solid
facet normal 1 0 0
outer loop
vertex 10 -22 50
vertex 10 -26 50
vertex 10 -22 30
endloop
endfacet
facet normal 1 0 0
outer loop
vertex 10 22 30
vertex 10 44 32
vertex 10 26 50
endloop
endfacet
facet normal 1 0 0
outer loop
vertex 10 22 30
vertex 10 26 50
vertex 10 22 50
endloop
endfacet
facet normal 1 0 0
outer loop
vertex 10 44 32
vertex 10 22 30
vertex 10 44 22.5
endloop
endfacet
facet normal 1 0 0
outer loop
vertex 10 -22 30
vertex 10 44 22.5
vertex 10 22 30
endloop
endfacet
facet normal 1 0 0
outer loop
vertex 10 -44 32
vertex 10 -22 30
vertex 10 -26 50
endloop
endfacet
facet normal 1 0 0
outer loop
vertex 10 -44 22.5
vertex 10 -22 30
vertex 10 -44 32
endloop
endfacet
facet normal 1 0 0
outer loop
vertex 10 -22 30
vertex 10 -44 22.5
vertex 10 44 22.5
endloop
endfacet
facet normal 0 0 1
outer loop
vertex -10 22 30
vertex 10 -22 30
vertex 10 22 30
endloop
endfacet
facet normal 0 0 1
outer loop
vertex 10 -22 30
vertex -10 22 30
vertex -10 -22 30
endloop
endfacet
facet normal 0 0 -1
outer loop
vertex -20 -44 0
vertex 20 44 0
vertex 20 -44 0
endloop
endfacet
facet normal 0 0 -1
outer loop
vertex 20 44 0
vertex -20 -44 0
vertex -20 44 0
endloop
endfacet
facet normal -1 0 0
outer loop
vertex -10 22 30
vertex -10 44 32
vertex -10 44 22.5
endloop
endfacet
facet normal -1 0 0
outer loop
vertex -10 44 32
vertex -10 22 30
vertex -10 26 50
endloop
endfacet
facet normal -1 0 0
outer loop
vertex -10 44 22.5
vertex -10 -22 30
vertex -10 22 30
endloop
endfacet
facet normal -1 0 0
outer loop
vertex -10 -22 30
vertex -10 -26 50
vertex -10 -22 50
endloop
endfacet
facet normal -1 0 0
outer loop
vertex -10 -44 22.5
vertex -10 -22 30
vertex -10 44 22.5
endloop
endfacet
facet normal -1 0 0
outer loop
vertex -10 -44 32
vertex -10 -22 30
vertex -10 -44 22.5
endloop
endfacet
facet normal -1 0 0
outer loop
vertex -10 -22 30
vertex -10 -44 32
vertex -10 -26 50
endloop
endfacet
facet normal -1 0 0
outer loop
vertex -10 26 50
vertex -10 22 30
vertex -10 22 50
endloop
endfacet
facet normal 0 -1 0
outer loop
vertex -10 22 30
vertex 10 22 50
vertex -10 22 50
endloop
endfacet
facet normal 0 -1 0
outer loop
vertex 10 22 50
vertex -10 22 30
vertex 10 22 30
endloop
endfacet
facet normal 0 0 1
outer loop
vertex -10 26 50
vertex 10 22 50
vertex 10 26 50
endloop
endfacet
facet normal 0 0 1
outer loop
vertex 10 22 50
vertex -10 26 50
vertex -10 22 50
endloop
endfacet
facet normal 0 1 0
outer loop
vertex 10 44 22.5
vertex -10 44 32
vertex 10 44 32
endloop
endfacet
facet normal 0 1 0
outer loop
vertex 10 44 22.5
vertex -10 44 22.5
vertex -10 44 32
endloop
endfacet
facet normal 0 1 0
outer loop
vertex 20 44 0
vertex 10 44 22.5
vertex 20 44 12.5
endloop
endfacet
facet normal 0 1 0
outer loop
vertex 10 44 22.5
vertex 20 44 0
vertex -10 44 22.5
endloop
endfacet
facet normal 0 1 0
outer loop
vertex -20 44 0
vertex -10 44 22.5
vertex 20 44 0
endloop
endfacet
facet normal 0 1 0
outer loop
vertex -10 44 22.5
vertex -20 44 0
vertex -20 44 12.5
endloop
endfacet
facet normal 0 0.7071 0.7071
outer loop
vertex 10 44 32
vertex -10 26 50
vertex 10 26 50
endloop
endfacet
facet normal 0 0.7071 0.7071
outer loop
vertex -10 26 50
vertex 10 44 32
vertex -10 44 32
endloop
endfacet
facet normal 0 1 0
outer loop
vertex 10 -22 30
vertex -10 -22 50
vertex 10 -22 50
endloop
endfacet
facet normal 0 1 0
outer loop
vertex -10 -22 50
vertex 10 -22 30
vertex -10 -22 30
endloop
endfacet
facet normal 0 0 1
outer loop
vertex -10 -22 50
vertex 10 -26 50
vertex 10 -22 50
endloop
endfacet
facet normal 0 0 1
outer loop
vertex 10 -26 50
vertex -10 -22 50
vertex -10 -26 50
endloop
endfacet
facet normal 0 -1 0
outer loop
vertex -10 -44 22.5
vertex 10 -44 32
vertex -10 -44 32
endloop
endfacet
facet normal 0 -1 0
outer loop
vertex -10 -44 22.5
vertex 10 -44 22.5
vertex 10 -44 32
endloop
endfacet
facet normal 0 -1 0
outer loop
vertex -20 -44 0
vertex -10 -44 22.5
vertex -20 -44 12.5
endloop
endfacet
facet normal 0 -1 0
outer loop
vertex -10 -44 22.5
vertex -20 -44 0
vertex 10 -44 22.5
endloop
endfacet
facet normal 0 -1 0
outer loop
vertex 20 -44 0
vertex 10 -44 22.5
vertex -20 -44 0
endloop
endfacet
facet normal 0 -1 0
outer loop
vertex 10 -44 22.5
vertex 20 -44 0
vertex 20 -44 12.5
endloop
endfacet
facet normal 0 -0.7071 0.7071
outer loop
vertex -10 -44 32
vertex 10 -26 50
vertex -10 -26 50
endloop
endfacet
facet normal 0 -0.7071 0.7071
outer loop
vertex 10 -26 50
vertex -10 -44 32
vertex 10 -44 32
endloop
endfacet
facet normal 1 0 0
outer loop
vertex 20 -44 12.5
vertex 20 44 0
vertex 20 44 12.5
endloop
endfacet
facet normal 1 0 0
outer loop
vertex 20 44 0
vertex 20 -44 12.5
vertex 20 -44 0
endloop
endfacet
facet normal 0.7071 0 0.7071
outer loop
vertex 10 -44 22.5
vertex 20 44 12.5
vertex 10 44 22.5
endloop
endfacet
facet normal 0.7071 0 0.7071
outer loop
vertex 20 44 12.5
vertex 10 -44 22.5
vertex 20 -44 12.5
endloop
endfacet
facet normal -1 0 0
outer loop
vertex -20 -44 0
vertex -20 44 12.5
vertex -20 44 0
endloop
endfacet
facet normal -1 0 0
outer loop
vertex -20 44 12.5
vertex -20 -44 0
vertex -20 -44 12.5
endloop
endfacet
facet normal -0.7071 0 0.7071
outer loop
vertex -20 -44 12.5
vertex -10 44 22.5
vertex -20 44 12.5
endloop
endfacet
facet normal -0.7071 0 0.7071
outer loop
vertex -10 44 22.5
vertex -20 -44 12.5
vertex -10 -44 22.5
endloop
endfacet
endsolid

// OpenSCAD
$fa = 1;
$fs = 0.4;

/* Fix these */
server_thickness = 44.00;

floor_height = 30.00;
floor_width = server_thickness * 2;

overlap_height = 20.00;
stand_depth = 20.00;

module half()
{
    difference() {
        union() {
            cube([stand_depth, server_thickness/2, floor_height]);
            translate([0,server_thickness/2,0]) cube([stand_depth, server_thickness/2, floor_height+overlap_height]);
        }
        translate([-stand_depth/2, server_thickness*1.5, floor_height-overlap_height]) rotate([45,0 ,0]) cube([stand_depth*2, server_thickness*5, server_thickness*5]);
    }
}


translate ([-stand_depth/2,0,0]) union() {
    half();
    mirror([0,1,0]) half();
}

module support() {
    sup_width = server_thickness*2;
    difference () {
        translate([stand_depth/2,-sup_width/2,0]) cube([stand_depth/2, sup_width, floor_height]);
        translate([stand_depth/2, -sup_width, floor_height*0.75]) rotate([0,45,0]) cube([sup_width,sup_width*2,40]);
        translate([0, 0, floor_height*0.75+40/2]) cube([sup_width,sup_width*2, 40], center=true);
    }
}

support();
mirror([1,0,0]) support();
